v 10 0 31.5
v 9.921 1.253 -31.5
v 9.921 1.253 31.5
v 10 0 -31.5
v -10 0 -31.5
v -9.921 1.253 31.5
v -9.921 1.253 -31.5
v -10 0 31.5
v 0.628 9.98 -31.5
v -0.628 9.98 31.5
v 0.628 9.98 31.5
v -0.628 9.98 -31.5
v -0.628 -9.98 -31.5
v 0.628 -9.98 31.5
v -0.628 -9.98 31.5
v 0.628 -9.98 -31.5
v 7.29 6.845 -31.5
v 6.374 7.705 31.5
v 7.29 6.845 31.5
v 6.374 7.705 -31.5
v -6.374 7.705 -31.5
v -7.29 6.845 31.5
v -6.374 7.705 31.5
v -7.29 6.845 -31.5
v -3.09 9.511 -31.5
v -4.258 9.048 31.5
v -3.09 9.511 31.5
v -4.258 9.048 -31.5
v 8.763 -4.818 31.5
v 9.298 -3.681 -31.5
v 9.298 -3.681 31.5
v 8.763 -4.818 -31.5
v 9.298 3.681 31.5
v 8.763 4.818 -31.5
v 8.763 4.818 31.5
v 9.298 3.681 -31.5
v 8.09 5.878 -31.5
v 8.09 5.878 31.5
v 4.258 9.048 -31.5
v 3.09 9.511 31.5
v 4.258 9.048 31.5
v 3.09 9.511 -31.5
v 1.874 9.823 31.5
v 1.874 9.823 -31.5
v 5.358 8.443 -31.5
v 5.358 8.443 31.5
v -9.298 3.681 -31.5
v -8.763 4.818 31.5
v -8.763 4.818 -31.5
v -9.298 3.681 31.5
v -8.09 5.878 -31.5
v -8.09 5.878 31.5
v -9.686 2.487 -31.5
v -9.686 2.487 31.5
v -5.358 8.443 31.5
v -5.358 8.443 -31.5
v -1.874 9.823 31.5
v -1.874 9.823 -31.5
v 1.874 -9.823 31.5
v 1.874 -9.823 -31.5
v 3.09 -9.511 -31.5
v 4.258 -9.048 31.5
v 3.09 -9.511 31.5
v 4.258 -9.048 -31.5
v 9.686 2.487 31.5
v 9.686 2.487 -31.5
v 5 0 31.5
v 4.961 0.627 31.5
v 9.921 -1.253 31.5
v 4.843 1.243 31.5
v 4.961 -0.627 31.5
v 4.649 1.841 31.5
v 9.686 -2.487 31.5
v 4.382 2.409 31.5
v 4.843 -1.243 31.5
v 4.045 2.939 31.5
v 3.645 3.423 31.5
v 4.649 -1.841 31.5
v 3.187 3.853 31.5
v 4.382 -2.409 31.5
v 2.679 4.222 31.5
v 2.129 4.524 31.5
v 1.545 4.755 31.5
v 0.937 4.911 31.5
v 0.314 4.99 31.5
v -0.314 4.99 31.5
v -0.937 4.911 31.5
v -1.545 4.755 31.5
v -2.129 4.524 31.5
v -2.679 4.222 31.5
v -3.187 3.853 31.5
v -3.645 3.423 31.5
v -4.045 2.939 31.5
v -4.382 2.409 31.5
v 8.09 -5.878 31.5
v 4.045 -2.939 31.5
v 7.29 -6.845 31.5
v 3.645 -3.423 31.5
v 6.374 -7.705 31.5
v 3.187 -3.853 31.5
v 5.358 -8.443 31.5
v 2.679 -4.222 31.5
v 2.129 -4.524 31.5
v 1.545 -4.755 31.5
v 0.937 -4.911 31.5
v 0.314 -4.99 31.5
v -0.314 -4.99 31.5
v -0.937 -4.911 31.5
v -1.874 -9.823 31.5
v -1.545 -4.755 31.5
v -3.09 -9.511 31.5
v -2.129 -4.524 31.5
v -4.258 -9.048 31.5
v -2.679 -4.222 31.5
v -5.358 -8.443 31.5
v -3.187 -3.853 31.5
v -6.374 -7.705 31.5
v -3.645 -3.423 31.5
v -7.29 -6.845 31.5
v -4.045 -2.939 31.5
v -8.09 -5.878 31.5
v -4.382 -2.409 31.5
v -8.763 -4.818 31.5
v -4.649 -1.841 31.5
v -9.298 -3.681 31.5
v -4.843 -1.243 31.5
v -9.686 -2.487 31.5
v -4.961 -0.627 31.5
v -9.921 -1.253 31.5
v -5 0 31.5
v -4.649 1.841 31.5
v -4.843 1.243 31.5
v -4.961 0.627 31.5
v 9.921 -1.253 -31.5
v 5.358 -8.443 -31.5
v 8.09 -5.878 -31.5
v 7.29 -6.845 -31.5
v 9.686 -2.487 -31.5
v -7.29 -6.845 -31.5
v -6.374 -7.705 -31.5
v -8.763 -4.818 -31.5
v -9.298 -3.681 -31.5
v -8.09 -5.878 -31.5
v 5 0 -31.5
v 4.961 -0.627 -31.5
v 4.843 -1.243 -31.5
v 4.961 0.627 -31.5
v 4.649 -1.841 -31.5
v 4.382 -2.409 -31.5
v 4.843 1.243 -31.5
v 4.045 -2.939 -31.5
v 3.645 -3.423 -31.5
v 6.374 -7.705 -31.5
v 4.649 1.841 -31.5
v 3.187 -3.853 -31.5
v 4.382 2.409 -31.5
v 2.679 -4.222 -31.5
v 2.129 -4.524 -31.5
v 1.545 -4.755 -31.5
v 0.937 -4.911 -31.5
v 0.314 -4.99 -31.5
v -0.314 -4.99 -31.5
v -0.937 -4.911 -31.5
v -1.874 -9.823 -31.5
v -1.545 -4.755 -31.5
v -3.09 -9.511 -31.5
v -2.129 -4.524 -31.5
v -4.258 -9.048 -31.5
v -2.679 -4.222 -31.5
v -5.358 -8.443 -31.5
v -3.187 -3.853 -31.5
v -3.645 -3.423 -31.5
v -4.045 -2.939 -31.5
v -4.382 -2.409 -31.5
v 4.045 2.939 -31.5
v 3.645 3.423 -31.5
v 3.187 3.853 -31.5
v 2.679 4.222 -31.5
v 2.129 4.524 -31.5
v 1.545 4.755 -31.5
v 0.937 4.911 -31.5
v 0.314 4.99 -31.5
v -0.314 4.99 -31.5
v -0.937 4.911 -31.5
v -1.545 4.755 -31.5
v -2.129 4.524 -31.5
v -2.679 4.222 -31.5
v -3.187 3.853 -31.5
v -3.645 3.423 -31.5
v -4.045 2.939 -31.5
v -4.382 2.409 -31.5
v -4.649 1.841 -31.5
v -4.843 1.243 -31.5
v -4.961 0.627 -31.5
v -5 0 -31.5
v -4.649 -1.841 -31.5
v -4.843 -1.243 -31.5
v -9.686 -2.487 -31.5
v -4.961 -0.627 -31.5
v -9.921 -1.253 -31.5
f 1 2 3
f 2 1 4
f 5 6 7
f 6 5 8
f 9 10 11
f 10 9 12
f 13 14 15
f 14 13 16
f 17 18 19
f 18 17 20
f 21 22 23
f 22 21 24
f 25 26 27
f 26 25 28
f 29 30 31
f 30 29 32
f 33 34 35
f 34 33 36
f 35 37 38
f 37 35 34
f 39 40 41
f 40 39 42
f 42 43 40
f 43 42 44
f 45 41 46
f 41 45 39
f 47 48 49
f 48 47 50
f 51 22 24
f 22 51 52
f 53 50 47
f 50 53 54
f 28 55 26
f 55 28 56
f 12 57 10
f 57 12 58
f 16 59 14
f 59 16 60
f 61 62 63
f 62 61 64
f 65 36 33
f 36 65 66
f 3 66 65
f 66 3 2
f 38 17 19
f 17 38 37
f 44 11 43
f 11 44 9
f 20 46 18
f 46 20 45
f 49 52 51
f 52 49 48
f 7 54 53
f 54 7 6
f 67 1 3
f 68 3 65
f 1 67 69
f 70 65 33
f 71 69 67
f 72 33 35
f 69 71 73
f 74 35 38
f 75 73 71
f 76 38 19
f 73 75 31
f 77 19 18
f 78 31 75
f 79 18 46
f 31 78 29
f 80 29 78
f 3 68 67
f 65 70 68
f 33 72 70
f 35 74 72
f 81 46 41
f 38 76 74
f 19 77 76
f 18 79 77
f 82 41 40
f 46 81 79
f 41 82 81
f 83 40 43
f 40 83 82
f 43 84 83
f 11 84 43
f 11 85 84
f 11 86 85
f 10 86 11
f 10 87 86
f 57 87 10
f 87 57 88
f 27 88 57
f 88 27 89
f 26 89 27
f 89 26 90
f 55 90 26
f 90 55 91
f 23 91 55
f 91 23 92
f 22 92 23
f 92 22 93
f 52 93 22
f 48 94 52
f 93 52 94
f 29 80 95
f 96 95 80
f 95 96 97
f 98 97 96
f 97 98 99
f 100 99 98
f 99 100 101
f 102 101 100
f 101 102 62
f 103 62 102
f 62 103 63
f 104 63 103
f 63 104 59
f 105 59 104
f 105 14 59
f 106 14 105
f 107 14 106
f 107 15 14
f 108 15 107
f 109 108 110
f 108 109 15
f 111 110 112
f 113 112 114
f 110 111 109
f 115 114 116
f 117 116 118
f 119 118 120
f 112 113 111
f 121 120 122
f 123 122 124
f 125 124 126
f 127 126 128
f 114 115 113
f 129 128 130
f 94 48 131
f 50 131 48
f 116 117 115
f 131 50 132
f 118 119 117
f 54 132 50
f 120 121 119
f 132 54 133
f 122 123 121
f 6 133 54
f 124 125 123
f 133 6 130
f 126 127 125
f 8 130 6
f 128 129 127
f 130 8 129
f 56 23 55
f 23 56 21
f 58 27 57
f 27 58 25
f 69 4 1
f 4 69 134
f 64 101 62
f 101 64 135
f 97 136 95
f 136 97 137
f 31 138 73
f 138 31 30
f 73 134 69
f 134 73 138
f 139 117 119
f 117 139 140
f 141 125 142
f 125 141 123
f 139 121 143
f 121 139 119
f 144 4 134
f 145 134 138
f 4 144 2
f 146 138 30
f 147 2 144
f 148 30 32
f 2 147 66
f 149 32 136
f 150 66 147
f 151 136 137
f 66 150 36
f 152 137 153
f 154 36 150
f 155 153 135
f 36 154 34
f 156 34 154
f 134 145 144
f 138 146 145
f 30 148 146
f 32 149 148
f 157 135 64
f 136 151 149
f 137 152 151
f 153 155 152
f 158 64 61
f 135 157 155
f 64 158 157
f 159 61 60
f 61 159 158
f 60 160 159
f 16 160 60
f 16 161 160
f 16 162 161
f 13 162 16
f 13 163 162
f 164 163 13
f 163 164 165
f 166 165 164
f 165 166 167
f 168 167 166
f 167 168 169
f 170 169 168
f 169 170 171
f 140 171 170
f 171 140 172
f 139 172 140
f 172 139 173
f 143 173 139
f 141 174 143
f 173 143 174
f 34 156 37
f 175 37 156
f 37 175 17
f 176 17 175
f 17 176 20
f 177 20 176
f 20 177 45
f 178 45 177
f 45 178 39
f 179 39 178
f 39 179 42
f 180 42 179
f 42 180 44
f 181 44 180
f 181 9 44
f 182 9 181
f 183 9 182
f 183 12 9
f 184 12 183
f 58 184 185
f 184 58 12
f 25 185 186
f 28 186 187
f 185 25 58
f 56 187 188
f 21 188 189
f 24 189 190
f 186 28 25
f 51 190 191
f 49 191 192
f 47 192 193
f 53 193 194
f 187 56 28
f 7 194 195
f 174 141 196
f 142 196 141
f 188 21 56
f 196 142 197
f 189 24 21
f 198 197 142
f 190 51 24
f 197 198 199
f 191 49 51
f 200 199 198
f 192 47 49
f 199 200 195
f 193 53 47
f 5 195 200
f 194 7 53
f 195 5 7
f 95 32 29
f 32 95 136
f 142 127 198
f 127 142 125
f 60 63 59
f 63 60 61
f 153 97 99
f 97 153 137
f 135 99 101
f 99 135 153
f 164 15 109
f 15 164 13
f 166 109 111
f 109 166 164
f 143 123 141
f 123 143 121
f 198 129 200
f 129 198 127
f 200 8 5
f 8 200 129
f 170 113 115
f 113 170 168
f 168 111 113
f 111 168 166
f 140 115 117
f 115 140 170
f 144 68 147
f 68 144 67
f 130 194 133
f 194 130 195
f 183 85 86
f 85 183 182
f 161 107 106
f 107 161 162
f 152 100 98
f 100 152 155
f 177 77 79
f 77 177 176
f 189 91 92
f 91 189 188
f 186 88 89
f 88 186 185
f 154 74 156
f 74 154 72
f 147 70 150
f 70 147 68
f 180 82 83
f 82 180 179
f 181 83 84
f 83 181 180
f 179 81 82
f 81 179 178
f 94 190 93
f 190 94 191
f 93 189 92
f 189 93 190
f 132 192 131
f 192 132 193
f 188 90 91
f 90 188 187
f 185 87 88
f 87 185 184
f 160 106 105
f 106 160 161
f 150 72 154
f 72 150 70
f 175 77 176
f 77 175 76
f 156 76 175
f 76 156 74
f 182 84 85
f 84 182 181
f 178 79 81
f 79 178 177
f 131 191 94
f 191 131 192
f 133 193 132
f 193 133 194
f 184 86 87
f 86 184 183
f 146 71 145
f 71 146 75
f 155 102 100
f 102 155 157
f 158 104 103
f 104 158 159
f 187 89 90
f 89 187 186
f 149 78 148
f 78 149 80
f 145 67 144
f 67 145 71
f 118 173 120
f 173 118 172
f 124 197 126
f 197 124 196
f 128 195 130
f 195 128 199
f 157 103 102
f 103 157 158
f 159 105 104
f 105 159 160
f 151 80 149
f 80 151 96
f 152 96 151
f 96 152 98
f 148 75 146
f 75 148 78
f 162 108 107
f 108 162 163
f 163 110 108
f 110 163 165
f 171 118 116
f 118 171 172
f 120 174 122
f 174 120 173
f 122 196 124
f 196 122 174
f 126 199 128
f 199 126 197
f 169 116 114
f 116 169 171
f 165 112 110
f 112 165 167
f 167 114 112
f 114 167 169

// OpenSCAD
$fn = 50;


difference() {
	union() {
		translate(v = [0, 0, -31.5000000000]) {
			cylinder(h = 63, r = 10.0000000000);
		}
	}
	union() {
		translate(v = [0, 0, -100.0000000000]) {
			cylinder(h = 200, r = 5.0000000000);
		}
	}
}
